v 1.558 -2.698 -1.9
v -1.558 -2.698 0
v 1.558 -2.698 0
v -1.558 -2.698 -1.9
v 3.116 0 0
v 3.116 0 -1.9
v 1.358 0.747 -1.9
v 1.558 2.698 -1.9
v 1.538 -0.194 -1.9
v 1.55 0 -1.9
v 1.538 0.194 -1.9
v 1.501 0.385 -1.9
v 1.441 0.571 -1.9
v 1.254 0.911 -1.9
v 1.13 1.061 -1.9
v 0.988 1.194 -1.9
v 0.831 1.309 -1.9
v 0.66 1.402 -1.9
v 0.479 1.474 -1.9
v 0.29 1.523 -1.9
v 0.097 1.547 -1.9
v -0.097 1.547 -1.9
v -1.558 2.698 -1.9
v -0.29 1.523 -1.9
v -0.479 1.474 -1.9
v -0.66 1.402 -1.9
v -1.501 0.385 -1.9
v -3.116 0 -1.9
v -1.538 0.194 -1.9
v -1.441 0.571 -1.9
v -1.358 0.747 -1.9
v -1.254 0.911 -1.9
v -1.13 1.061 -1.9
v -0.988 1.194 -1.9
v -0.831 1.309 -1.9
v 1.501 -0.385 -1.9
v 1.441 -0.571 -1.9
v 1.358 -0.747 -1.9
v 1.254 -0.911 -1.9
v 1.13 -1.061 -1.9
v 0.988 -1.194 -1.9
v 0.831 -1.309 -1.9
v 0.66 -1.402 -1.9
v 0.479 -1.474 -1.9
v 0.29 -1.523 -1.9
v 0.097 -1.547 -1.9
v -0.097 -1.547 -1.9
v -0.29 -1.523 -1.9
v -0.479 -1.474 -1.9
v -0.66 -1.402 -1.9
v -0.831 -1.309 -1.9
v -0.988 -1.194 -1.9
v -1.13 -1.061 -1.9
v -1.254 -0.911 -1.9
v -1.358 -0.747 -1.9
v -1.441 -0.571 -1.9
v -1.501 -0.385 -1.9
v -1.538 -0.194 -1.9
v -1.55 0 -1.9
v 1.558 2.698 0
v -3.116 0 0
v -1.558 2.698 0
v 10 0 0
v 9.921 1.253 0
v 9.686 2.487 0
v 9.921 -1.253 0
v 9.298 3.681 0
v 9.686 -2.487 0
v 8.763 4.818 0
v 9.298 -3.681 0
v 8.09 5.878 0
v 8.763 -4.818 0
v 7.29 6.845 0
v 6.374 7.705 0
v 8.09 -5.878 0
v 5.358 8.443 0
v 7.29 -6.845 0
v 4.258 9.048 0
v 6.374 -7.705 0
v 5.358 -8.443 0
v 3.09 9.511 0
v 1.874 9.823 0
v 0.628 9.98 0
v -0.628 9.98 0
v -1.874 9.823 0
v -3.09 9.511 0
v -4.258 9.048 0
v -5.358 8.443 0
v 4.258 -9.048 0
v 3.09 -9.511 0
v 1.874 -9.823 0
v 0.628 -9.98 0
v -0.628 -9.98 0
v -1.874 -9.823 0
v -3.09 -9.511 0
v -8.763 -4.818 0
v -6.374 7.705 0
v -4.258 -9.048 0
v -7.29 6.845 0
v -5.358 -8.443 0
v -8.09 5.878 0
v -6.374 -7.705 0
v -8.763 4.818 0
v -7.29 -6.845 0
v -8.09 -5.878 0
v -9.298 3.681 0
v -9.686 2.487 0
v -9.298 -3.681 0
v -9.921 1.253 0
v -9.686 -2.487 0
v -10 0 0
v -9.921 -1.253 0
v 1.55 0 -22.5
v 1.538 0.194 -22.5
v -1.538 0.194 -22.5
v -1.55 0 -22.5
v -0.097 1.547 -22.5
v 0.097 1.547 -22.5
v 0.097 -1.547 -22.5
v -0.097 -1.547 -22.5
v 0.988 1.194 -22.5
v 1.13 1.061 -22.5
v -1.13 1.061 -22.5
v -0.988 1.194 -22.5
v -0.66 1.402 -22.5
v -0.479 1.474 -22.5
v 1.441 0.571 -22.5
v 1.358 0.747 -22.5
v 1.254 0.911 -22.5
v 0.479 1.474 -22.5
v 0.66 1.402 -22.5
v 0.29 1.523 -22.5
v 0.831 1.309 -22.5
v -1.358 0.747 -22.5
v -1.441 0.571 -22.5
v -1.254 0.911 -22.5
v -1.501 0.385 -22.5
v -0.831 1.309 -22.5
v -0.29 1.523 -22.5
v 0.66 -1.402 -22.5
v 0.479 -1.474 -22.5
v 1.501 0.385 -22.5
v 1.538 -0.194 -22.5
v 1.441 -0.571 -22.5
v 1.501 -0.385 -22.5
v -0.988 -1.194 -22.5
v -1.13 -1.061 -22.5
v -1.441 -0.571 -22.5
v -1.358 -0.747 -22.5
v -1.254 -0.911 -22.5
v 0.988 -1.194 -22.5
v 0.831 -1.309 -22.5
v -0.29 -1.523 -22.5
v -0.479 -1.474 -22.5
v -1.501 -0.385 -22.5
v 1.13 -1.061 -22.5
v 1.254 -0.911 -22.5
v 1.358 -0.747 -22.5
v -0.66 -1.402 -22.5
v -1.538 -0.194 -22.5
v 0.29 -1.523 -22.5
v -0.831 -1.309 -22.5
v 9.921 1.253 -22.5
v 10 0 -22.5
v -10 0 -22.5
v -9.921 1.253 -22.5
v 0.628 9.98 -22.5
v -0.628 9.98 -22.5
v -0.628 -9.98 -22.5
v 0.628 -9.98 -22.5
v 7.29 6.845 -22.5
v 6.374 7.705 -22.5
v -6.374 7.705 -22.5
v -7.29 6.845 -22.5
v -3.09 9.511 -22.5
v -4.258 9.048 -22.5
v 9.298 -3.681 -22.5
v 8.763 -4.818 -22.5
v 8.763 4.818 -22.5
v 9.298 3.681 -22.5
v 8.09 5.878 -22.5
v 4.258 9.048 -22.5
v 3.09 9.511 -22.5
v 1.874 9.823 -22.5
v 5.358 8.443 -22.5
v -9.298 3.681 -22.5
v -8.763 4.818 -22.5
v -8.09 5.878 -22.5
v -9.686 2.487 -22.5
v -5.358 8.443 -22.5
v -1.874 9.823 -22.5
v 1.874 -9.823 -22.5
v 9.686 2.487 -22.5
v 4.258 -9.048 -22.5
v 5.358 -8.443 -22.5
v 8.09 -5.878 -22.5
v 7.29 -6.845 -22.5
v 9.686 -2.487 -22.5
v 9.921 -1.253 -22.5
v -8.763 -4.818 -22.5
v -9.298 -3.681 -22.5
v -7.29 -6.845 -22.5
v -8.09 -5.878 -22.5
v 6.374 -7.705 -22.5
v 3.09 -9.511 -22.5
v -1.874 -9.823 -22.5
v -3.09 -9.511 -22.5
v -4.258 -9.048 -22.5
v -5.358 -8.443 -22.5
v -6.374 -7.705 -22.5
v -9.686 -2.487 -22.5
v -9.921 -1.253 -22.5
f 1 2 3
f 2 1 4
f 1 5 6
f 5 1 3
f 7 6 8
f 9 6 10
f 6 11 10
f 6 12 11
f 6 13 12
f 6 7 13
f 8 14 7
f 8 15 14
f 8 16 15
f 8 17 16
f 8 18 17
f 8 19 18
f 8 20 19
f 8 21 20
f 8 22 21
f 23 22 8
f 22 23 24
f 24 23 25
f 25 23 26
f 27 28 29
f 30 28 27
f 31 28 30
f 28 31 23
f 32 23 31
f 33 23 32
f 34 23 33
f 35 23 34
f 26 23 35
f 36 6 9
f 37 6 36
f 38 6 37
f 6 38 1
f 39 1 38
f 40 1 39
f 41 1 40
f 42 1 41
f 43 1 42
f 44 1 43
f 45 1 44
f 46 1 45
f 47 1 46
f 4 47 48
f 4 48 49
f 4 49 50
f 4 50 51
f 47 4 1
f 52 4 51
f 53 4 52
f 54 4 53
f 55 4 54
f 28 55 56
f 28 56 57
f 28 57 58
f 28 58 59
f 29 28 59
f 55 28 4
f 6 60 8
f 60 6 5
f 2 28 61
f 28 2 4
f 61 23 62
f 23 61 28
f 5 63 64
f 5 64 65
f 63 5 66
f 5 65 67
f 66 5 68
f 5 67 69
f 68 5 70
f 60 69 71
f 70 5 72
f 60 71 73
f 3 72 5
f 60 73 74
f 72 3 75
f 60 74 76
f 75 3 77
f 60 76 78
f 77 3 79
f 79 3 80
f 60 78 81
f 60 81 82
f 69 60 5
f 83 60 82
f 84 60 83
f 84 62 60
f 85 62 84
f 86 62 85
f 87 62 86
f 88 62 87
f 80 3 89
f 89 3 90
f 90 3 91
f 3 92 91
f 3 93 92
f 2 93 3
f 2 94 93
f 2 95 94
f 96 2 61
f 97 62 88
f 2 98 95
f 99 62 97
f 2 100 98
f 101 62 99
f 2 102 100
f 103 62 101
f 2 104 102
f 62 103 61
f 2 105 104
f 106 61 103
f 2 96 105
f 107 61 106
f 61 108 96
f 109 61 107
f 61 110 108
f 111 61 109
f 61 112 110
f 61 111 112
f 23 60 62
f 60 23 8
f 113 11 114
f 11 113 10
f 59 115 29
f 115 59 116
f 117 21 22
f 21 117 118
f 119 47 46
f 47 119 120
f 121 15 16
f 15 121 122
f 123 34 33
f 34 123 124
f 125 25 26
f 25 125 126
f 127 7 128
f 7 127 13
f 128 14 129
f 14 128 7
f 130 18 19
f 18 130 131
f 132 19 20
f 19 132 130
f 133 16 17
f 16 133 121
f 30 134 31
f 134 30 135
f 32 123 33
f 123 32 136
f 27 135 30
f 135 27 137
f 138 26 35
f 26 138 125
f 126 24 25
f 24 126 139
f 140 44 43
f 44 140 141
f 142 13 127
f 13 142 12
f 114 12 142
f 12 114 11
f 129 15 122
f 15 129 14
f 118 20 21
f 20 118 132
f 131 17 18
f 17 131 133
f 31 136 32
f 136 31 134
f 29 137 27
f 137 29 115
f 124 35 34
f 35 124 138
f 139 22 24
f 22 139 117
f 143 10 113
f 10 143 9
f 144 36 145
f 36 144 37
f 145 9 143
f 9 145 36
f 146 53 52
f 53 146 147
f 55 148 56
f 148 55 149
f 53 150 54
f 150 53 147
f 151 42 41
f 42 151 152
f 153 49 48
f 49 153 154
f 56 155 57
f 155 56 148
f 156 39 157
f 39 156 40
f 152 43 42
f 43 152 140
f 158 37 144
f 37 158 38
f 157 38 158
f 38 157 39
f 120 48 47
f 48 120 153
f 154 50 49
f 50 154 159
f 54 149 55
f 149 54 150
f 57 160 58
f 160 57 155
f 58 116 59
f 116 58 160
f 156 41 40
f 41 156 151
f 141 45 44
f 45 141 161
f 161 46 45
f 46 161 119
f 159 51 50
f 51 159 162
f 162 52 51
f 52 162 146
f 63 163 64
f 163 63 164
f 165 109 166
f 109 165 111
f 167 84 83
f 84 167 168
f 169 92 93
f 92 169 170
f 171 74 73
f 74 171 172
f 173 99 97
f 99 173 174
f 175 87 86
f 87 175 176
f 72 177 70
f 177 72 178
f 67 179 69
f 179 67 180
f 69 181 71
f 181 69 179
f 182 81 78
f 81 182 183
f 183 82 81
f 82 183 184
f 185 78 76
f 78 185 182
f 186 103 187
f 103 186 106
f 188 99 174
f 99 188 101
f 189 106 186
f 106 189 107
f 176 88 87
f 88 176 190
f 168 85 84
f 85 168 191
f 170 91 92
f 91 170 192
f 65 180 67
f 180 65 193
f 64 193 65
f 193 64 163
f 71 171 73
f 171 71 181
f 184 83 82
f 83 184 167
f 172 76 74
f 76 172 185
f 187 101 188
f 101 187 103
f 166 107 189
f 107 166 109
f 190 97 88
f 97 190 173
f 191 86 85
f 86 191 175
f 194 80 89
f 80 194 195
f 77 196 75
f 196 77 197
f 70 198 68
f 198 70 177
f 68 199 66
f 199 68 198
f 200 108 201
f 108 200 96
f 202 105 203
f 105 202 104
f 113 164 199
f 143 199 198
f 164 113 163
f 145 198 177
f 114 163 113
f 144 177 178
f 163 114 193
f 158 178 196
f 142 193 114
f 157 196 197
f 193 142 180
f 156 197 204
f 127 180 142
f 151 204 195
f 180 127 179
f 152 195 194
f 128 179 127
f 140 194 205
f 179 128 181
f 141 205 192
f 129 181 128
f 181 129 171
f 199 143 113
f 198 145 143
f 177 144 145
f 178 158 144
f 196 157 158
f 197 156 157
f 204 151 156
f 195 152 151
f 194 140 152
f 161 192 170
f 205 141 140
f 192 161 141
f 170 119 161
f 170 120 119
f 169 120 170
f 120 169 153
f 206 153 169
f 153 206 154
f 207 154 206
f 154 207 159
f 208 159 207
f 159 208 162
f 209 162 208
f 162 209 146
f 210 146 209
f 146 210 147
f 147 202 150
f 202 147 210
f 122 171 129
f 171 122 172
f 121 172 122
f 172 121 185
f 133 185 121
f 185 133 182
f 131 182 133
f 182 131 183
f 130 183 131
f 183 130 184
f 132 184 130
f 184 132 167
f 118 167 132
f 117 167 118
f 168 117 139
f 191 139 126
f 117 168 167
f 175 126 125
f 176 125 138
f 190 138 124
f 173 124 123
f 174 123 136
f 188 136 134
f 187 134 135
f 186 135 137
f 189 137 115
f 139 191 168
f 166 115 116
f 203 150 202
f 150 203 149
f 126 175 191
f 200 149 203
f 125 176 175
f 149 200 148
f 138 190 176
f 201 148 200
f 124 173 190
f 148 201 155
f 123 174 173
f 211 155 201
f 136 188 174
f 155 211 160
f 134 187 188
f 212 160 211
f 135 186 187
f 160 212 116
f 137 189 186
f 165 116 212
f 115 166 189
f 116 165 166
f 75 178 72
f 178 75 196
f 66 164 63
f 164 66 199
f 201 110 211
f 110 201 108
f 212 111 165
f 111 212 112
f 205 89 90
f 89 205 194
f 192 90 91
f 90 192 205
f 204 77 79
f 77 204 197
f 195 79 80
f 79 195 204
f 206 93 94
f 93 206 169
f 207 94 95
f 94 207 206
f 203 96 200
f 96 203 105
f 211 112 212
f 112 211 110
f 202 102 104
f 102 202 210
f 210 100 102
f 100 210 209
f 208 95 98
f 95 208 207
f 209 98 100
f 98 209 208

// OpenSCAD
$fn = 50;


difference() {
	union() {
		translate(v = [0, 0, -22.5000000000]) {
			cylinder(h = 22.5000000000, r = 10.0000000000);
		}
	}
	union() {
		translate(v = [0, 0, 0]) {
			rotate(a = [0, 0, 0]) {
				difference() {
					union() {
						translate(v = [0, 0, -1.9000000000]) {
							linear_extrude(height = 1.9000000000) {
								polygon(points = [[3.1158000000, 0.0000000000], [1.5579000000, 2.6983619531], [-1.5579000000, 2.6983619531], [-3.1158000000, 0.0000000000], [-1.5579000000, -2.6983619531], [1.5579000000, -2.6983619531]]);
							}
						}
					}
					union();
				}
			}
		}
		#translate(v = [0, 0, -100.0000000000]) {
			cylinder(h = 200, r = 1.5500000000);
		}
	}
}
